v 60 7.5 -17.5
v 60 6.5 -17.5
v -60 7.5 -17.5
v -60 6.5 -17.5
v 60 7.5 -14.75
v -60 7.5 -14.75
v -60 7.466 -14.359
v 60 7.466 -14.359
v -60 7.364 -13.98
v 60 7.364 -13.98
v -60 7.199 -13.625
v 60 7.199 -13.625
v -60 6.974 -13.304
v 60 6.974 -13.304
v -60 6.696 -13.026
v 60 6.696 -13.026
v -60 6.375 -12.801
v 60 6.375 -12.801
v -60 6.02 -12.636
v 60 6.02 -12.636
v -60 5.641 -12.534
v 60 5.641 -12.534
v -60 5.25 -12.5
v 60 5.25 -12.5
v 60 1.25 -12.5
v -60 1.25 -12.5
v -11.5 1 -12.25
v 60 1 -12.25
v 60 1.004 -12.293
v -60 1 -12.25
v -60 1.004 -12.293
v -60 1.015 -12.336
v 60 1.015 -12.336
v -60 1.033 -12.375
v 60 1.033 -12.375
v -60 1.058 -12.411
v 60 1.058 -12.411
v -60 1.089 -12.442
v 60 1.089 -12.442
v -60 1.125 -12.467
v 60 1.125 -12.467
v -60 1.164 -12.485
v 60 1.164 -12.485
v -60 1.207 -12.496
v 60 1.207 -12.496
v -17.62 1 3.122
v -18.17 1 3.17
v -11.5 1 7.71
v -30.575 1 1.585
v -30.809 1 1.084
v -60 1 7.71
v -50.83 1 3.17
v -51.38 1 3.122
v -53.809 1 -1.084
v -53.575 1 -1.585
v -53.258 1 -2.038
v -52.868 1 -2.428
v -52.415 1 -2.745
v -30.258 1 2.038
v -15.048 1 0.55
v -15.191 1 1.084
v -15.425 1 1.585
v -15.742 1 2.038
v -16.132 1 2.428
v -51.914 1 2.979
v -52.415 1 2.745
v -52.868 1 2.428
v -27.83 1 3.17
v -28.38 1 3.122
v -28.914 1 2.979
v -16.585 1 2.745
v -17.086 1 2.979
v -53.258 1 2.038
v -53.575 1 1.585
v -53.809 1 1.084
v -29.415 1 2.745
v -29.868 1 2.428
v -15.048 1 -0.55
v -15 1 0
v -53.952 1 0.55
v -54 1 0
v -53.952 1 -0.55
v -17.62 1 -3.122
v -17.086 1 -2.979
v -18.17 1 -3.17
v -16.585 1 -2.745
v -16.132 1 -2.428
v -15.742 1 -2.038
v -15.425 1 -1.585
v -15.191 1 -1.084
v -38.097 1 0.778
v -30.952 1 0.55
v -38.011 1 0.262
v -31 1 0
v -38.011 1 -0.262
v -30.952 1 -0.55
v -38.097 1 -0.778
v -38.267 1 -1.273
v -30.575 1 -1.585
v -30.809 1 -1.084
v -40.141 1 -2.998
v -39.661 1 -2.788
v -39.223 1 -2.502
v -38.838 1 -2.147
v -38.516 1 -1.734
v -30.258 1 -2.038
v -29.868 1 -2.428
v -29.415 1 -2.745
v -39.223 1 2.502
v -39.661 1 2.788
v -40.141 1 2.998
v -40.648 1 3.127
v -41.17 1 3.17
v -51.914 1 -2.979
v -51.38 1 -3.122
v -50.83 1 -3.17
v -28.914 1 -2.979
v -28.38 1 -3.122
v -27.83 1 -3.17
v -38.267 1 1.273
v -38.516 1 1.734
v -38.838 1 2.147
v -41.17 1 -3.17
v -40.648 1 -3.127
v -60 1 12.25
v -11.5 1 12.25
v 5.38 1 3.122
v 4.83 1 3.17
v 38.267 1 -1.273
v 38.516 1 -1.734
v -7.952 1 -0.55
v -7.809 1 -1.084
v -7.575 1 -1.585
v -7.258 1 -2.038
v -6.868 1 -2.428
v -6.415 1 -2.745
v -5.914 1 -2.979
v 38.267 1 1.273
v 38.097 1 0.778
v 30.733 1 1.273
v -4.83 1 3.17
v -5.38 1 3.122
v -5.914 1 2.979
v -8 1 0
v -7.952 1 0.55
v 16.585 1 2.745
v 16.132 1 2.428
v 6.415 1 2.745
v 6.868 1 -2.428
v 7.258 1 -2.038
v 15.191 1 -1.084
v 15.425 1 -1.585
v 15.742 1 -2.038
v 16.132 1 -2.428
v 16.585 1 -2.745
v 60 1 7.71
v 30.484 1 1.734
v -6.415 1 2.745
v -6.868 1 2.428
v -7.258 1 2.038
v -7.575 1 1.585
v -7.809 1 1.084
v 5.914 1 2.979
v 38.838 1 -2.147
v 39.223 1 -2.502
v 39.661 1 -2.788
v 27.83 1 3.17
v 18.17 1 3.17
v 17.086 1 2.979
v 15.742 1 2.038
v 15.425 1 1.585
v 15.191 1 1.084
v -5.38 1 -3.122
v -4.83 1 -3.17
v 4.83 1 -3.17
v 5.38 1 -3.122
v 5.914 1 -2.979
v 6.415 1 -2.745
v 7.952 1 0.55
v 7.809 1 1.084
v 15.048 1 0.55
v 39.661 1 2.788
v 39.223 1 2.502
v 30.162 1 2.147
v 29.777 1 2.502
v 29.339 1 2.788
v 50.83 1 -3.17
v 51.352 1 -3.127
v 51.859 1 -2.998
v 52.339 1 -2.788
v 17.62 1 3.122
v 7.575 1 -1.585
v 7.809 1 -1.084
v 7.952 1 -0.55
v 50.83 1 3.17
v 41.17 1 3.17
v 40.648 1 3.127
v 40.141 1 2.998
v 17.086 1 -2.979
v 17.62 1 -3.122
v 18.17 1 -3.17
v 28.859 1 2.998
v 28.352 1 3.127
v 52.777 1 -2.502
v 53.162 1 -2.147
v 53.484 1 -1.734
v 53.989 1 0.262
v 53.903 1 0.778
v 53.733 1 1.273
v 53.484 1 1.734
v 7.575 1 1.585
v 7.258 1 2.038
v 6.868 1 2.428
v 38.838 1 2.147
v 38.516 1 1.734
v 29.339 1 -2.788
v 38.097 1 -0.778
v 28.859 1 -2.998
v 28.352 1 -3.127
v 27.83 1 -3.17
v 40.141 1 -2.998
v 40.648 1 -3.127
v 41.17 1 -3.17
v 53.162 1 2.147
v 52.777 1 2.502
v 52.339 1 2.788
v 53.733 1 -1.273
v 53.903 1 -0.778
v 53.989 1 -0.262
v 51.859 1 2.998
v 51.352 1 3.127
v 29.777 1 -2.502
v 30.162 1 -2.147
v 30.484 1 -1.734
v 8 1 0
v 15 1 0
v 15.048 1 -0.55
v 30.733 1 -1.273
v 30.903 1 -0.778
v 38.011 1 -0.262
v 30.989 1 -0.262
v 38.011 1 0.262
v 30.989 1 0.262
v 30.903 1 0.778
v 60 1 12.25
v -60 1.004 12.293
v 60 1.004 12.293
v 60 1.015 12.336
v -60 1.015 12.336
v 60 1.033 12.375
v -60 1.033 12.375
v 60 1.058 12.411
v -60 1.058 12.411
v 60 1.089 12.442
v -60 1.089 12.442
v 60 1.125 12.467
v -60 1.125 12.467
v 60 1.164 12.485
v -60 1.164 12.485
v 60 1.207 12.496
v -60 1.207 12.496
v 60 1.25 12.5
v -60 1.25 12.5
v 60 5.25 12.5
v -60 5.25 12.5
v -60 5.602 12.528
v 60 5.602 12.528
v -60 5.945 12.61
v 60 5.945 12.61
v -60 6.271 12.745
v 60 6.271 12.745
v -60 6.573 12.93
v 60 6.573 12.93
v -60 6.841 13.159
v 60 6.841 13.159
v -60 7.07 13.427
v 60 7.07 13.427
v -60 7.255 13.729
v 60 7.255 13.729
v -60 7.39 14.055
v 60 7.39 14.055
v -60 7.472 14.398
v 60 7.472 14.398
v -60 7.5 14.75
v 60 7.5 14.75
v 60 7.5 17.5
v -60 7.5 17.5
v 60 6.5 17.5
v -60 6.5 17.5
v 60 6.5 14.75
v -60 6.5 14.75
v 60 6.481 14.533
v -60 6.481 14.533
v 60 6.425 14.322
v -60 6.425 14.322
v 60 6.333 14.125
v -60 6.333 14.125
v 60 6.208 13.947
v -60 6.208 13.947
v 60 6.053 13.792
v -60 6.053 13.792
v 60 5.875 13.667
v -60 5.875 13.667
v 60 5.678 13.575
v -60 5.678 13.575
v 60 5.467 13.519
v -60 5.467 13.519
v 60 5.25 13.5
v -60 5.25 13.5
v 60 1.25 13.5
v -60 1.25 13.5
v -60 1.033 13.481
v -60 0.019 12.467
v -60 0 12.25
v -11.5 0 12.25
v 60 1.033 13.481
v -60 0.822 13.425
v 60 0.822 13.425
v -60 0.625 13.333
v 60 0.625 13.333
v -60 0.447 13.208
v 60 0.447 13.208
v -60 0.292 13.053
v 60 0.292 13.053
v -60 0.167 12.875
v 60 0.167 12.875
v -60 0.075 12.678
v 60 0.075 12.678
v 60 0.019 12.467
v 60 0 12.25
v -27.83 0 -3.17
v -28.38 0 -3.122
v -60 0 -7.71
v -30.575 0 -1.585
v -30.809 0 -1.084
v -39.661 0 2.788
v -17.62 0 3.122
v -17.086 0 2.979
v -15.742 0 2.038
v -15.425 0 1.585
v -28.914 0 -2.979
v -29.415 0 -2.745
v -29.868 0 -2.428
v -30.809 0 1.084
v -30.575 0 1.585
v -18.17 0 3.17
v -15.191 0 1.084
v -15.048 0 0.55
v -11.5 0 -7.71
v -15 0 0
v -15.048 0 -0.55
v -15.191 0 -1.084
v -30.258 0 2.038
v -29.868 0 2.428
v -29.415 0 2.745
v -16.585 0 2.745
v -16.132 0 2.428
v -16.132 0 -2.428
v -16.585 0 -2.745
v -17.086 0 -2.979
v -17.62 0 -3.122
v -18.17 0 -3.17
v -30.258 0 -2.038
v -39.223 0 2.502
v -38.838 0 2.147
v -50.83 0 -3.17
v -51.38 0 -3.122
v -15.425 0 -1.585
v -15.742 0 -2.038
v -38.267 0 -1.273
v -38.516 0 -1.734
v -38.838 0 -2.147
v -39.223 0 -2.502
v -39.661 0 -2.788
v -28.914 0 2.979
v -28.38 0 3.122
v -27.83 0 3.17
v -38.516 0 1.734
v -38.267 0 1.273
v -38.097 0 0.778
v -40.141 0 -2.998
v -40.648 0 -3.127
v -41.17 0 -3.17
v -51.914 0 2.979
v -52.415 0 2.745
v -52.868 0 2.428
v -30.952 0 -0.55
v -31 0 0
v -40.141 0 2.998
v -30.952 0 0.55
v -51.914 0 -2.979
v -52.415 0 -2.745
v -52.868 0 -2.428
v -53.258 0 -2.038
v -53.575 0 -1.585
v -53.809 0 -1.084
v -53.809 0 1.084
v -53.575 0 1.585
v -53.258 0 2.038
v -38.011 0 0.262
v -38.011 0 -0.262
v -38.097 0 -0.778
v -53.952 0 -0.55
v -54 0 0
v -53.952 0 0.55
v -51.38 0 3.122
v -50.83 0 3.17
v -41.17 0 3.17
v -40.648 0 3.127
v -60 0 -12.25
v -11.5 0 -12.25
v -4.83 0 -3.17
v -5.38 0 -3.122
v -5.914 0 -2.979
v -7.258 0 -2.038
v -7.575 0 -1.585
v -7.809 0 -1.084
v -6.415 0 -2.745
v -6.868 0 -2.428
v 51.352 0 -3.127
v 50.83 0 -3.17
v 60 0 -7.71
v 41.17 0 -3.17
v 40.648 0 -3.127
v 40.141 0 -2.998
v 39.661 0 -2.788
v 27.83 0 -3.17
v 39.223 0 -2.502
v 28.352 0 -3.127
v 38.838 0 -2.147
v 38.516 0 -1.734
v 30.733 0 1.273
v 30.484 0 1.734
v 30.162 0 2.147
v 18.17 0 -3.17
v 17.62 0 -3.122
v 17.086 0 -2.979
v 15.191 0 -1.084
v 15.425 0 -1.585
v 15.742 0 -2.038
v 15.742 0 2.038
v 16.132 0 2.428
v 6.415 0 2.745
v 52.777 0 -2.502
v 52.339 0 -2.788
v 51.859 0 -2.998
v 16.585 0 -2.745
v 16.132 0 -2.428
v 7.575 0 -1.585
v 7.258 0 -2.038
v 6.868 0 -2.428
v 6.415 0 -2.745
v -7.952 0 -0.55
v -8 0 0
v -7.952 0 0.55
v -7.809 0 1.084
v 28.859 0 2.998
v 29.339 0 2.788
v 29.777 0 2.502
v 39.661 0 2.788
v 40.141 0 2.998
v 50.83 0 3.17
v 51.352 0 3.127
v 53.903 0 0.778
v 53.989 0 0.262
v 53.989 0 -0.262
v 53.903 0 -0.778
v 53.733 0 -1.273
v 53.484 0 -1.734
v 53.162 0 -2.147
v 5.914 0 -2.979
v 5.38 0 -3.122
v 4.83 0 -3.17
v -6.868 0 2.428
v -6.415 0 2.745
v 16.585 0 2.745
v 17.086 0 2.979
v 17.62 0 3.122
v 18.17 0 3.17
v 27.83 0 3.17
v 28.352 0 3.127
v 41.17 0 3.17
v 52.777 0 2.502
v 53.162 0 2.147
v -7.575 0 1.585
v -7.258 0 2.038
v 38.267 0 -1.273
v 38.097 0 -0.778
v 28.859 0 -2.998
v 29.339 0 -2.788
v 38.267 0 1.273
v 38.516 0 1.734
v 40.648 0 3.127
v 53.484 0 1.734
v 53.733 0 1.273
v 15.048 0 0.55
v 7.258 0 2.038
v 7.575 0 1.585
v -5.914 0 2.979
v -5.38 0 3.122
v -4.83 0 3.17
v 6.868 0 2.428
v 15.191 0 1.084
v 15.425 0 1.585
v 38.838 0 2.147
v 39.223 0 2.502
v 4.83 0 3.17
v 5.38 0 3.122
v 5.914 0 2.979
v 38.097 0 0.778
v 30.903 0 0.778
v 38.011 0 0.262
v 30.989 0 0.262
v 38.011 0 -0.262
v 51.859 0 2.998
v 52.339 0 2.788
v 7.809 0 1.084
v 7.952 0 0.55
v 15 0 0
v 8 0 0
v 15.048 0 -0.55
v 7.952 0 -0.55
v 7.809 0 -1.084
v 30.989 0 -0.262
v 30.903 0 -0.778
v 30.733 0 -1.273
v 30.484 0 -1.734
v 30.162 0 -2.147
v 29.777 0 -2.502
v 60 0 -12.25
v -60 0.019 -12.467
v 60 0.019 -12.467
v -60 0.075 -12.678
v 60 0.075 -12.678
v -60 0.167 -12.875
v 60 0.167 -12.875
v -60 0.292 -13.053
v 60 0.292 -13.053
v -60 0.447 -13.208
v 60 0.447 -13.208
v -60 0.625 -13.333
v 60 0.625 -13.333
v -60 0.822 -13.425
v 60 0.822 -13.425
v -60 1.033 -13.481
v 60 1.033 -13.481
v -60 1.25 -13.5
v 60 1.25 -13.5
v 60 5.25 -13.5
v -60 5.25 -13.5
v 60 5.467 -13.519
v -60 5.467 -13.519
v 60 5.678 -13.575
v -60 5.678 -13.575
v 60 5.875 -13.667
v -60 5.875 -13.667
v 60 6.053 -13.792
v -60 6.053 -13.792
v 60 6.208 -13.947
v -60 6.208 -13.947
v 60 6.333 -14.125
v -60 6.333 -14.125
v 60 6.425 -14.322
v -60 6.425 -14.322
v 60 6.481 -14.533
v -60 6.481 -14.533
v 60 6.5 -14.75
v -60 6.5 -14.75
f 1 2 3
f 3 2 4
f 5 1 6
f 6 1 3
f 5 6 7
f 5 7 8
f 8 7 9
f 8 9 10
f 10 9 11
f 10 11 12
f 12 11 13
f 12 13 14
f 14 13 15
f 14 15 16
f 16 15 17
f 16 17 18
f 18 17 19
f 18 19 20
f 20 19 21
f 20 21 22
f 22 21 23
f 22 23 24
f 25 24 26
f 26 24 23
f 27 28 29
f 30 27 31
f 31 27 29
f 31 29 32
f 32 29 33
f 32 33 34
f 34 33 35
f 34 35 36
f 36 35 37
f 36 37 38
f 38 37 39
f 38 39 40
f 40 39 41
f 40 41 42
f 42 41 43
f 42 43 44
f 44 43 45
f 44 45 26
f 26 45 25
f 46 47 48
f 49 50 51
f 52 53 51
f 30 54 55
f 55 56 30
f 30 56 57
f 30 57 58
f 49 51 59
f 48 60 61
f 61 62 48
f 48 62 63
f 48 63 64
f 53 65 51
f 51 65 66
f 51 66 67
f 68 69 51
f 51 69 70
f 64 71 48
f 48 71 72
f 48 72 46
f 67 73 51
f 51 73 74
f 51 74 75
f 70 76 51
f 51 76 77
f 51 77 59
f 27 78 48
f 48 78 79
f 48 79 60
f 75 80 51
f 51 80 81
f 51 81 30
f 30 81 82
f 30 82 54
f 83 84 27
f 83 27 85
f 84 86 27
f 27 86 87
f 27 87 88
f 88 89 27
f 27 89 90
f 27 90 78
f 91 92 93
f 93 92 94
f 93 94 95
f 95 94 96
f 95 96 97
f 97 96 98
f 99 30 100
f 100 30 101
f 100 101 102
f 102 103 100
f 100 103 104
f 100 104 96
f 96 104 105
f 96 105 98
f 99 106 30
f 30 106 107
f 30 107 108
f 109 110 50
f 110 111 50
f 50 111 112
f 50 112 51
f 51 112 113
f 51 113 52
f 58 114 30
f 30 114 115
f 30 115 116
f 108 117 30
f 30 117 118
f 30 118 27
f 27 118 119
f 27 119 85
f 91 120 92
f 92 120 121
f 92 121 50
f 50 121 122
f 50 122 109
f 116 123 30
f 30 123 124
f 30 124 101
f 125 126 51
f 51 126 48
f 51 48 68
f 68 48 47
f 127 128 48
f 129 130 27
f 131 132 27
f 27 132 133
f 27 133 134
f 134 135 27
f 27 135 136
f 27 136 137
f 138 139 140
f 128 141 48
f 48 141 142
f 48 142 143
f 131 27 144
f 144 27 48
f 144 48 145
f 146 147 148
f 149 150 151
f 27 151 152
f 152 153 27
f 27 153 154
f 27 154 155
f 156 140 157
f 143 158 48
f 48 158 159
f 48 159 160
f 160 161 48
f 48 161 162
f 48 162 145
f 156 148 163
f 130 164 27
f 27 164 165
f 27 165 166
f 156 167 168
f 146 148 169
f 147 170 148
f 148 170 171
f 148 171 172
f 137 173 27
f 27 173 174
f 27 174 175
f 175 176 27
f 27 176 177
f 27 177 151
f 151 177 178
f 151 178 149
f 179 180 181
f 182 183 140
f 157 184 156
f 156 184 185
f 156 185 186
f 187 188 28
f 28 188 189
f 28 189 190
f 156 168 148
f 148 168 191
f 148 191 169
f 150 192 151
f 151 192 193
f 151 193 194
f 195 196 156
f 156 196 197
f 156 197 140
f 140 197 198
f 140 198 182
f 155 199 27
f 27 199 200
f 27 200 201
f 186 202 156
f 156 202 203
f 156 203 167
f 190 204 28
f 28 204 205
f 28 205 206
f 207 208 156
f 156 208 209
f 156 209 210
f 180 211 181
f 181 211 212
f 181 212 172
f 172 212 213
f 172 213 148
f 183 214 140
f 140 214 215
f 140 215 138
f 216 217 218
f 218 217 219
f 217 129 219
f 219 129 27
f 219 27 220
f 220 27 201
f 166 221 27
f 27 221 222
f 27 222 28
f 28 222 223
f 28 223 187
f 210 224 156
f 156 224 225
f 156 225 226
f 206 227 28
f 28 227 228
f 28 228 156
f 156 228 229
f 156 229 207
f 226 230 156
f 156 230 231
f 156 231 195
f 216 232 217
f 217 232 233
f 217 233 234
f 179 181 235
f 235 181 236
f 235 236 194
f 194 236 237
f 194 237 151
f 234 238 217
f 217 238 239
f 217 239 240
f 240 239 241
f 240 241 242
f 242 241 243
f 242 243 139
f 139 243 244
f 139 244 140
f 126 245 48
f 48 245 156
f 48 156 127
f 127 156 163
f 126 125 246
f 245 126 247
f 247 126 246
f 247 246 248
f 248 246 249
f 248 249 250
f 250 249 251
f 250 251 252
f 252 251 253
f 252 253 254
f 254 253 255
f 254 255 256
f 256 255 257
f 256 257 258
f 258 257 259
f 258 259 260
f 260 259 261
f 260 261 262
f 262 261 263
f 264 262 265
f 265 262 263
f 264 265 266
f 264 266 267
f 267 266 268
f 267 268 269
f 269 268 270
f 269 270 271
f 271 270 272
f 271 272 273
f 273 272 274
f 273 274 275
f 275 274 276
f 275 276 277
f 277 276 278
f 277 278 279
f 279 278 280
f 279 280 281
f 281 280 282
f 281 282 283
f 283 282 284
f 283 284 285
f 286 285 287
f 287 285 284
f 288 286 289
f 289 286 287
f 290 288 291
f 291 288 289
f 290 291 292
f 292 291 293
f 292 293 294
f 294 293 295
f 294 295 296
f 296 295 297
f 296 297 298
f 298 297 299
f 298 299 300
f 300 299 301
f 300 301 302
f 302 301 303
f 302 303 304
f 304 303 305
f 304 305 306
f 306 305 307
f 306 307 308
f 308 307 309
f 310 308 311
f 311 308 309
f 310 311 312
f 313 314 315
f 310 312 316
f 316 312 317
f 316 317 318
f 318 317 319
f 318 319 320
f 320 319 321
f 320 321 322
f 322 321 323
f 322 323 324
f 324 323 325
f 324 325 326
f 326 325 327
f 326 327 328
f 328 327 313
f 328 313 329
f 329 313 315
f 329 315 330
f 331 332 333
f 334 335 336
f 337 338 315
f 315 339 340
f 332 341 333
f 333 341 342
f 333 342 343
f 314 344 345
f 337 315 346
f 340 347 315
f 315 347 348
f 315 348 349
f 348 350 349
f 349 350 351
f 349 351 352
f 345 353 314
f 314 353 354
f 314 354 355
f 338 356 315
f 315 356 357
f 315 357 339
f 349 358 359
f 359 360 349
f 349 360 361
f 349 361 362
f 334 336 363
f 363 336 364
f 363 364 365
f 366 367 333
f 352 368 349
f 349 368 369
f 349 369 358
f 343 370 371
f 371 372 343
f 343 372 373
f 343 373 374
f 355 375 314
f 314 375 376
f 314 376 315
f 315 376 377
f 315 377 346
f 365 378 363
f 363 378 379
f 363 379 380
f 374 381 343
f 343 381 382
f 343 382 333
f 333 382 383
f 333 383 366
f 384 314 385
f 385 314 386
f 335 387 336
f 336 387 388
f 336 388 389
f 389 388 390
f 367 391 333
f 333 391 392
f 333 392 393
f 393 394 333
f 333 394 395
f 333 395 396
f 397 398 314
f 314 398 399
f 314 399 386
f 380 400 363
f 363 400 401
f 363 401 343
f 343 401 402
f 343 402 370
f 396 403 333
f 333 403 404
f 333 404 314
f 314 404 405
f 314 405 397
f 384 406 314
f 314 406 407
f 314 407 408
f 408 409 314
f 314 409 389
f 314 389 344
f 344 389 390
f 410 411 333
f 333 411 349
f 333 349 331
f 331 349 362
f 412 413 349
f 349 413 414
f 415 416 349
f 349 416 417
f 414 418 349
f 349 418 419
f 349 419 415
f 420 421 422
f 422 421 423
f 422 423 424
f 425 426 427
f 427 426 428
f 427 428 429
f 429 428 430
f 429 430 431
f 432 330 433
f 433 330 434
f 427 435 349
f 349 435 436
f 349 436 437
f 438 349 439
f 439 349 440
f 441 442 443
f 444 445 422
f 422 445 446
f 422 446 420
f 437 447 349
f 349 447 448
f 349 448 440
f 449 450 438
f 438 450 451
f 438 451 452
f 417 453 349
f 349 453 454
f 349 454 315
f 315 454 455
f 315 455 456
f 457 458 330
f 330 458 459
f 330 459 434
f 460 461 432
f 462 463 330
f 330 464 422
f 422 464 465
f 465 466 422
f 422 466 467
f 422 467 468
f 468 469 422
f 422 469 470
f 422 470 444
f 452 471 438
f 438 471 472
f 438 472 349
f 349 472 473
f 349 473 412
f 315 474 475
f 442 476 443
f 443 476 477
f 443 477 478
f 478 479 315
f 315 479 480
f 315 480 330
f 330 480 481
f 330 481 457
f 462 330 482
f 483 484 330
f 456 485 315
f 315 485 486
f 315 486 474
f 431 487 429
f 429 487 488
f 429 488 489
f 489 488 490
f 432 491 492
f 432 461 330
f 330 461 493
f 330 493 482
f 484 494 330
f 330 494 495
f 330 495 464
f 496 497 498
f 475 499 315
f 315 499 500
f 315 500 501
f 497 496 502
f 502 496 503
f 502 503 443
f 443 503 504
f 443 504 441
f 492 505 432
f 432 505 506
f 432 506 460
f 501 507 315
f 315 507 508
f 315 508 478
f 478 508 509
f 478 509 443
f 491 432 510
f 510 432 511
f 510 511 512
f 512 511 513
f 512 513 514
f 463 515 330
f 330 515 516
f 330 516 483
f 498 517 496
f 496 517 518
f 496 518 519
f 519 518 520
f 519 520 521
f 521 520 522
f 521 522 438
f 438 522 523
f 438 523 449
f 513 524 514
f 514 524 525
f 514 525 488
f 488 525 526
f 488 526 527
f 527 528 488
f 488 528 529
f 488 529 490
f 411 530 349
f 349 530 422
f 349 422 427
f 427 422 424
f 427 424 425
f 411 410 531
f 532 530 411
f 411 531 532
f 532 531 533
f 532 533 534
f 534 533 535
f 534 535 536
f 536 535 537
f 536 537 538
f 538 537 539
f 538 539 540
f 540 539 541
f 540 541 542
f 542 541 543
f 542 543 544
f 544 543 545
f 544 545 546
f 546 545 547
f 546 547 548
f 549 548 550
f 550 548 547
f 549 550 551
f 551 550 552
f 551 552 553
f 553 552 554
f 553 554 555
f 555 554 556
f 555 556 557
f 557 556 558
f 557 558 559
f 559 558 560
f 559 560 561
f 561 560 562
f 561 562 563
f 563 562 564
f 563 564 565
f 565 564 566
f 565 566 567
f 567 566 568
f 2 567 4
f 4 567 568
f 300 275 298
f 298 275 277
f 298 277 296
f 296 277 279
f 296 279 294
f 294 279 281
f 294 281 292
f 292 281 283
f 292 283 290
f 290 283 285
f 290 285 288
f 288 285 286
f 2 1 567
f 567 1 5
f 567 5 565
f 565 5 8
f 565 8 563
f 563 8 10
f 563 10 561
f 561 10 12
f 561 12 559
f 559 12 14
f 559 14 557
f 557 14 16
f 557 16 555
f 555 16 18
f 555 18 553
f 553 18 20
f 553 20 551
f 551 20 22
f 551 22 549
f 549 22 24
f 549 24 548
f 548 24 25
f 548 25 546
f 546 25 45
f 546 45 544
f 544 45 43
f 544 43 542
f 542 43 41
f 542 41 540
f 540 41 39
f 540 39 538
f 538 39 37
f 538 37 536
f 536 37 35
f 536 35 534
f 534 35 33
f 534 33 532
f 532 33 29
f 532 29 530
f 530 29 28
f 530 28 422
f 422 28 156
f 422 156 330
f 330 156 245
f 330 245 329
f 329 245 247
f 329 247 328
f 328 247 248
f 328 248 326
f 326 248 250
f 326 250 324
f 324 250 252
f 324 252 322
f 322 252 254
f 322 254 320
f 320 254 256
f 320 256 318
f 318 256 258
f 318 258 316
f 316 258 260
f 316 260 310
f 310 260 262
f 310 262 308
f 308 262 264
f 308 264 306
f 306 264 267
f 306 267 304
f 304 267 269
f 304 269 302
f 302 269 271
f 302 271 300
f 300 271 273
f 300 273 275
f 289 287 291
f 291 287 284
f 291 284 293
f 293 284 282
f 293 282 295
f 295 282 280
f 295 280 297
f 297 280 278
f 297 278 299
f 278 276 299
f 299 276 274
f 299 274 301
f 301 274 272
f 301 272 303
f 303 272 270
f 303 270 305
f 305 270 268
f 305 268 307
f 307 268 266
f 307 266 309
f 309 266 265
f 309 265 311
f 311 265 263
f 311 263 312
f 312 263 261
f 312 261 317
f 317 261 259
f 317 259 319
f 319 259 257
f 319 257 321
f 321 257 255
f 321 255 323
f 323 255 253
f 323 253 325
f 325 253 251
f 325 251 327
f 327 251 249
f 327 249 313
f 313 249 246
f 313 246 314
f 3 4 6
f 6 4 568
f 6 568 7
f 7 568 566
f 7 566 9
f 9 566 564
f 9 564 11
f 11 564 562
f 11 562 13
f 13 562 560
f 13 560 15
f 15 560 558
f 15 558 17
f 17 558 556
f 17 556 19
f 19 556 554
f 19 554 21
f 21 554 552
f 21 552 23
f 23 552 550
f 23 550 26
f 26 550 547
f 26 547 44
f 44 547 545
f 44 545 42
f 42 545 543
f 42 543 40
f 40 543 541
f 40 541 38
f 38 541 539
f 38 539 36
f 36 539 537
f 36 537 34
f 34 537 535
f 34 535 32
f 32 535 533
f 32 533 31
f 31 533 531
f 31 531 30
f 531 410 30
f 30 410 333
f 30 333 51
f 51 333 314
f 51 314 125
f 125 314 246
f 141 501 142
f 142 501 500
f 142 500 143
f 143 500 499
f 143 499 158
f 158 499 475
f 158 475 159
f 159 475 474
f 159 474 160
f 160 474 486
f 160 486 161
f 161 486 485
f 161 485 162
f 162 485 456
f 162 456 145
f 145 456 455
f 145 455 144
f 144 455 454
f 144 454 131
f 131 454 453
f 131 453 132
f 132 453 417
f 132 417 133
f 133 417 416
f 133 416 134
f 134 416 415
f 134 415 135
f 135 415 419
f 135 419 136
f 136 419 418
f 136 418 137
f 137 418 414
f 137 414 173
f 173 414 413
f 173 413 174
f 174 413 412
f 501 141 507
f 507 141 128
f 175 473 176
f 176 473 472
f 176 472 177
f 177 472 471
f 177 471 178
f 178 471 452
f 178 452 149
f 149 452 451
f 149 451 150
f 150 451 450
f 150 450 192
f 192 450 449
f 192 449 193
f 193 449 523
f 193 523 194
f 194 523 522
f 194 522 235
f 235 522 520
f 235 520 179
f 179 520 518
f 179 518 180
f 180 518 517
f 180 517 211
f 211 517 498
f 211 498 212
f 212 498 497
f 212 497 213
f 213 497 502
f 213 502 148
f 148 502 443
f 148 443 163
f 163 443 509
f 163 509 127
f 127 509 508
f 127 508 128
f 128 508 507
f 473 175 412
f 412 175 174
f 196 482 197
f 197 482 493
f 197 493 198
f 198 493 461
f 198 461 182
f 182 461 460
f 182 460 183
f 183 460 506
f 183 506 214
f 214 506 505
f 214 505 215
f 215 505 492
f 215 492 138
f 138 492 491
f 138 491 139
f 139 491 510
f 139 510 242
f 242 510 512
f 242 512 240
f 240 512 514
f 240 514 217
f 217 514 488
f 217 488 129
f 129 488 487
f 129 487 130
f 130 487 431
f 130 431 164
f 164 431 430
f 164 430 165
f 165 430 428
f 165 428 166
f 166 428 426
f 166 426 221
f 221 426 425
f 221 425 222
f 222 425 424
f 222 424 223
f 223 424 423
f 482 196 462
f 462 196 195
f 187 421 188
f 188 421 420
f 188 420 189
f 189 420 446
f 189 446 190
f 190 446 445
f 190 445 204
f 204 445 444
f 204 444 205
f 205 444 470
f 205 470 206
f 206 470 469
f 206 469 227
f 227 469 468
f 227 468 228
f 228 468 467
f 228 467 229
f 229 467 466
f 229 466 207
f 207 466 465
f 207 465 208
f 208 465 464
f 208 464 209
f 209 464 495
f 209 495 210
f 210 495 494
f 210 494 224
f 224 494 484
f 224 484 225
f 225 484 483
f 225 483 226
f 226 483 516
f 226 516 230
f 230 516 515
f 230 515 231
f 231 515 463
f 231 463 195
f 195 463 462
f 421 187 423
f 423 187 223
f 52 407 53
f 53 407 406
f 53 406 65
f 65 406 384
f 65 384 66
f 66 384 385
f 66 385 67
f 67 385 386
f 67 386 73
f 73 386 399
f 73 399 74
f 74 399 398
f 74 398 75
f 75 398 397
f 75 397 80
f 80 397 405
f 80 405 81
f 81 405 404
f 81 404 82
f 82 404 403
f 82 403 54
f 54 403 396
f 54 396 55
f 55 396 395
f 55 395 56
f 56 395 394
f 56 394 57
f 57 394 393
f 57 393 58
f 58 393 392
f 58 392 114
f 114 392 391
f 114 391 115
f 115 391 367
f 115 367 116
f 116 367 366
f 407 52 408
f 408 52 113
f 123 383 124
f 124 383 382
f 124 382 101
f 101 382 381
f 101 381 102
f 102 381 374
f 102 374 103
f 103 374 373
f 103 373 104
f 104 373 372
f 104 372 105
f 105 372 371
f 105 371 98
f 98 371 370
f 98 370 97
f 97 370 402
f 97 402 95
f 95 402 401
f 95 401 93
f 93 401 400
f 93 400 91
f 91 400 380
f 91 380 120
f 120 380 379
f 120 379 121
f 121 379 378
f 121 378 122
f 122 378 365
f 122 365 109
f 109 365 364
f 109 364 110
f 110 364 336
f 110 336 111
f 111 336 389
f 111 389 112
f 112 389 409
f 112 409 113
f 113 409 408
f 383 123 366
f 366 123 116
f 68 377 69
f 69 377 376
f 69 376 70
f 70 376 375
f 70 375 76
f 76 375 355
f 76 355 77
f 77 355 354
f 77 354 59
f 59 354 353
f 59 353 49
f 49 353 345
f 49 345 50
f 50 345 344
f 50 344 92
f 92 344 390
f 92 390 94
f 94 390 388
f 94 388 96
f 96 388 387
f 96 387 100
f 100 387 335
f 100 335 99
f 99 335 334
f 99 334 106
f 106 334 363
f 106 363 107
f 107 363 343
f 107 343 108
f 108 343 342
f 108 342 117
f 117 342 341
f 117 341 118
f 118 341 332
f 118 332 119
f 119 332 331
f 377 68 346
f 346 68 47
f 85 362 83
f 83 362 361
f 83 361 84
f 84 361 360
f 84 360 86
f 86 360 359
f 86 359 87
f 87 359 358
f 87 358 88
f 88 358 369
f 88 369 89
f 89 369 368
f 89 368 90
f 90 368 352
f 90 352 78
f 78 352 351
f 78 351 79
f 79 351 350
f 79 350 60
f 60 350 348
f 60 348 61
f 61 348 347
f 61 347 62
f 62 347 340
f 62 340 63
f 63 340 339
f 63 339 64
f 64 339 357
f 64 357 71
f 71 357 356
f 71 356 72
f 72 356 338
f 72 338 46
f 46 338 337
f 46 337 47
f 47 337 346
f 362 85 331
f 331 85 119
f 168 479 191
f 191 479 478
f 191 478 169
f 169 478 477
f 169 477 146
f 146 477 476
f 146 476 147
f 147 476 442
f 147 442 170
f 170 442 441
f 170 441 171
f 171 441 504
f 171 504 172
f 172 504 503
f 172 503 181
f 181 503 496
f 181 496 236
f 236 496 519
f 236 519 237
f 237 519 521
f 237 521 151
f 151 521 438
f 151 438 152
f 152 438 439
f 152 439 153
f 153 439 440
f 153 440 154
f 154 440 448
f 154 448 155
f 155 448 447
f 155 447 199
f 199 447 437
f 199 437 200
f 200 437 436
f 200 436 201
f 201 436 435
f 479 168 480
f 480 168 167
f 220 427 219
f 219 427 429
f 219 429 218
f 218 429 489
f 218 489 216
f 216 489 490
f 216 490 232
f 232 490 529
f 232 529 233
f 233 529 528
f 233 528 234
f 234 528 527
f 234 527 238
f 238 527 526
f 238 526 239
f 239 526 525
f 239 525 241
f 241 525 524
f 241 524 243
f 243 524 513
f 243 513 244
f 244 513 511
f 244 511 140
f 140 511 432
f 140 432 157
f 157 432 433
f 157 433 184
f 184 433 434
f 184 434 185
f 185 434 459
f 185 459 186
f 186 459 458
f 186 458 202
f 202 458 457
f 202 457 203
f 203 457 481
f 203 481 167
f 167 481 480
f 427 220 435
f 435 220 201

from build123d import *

# Parameters (mm, degrees)
BOSS_EXTRUDE1_DEPTH = 60
CUT_EXTRUDE1_DEPTH  = 120


with BuildPart() as part:
    # Sketch1 → Boss-Extrude1 (new, symmetric)
    with BuildSketch(Plane(origin=(0, 0, 0), x_dir=(0, 0, -1), z_dir=(1, 0, 0))):
        with BuildLine():
            Line((12.25, 0), (-12.25, 0))
            ThreePointArc((-12.25, 0), (-13.133883476, 0.366116524), (-13.5, 1.25))
            Line((-13.5, 1.25), (-13.5, 5.25))
            ThreePointArc((-13.5, 5.25), (-13.866116524, 6.133883476), (-14.75, 6.5))
            Line((-14.75, 6.5), (-17.5, 6.5))
            Line((-17.5, 6.5), (-17.5, 7.5))
            Line((-17.5, 7.5), (-14.75, 7.5))
            ThreePointArc((-14.75, 7.5), (-13.159009742, 6.840990258), (-12.5, 5.25))
            Line((-12.5, 5.25), (-12.5, 1.25))
            ThreePointArc((-12.5, 1.25), (-12.426776695, 1.073223305), (-12.25, 1))
            Line((-12.25, 1), (12.25, 1))
            ThreePointArc((12.25, 1), (12.426776695, 1.073223305), (12.5, 1.25))
            Line((12.5, 1.25), (12.5, 5.25))
            ThreePointArc((12.5, 5.25), (13.159009742, 6.840990258), (14.75, 7.5))
            Line((14.75, 7.5), (17.5, 7.5))
            Line((17.5, 7.5), (17.5, 6.5))
            Line((17.5, 6.5), (14.75, 6.5))
            ThreePointArc((14.75, 6.5), (13.866116524, 6.133883476), (13.5, 5.25))
            Line((13.5, 5.25), (13.5, 1.25))
            ThreePointArc((13.5, 1.25), (13.133883476, 0.366116524), (12.25, 0))
        make_face()
    extrude(amount=BOSS_EXTRUDE1_DEPTH, both=True)

    # Sketch2 → Cut-Extrude1 (cut)
    with BuildSketch(Plane.XZ):
        with BuildLine():
            Line((-4.83, 3.17), (4.83, 3.17))
            ThreePointArc((4.83, 3.17), (8, 0), (4.83, -3.17))
            Line((4.83, -3.17), (-4.83, -3.17))
            ThreePointArc((-4.83, -3.17), (-8, 0), (-4.83, 3.17))
        make_face()
        with BuildLine():
            Line((18.17, -3.17), (27.83, -3.17))
            ThreePointArc((27.83, -3.17), (31, 0), (27.83, 3.17))
            Line((27.83, 3.17), (18.17, 3.17))
            ThreePointArc((18.17, 3.17), (15, 0), (18.17, -3.17))
        make_face()
        with BuildLine():
            Line((-27.83, -3.17), (-18.17, -3.17))
            ThreePointArc((-18.17, -3.17), (-15, 0), (-18.17, 3.17))
            Line((-18.17, 3.17), (-27.83, 3.17))
            ThreePointArc((-27.83, 3.17), (-31, 0), (-27.83, -3.17))
        make_face()
        with BuildLine():
            Line((-50.83, 3.17), (-41.17, 3.17))
            ThreePointArc((-41.17, 3.17), (-38, 0), (-41.17, -3.17))
            Line((-41.17, -3.17), (-50.83, -3.17))
            ThreePointArc((-50.83, -3.17), (-54, 0), (-50.83, 3.17))
        make_face()
        with BuildLine():
            Line((41.17, 3.17), (50.83, 3.17))
            ThreePointArc((50.83, 3.17), (54, 0), (50.83, -3.17))
            Line((50.83, -3.17), (41.17, -3.17))
            ThreePointArc((41.17, -3.17), (38, 0), (41.17, 3.17))
        make_face()
    extrude(amount=-CUT_EXTRUDE1_DEPTH, mode=Mode.SUBTRACT)


solid = part.part
